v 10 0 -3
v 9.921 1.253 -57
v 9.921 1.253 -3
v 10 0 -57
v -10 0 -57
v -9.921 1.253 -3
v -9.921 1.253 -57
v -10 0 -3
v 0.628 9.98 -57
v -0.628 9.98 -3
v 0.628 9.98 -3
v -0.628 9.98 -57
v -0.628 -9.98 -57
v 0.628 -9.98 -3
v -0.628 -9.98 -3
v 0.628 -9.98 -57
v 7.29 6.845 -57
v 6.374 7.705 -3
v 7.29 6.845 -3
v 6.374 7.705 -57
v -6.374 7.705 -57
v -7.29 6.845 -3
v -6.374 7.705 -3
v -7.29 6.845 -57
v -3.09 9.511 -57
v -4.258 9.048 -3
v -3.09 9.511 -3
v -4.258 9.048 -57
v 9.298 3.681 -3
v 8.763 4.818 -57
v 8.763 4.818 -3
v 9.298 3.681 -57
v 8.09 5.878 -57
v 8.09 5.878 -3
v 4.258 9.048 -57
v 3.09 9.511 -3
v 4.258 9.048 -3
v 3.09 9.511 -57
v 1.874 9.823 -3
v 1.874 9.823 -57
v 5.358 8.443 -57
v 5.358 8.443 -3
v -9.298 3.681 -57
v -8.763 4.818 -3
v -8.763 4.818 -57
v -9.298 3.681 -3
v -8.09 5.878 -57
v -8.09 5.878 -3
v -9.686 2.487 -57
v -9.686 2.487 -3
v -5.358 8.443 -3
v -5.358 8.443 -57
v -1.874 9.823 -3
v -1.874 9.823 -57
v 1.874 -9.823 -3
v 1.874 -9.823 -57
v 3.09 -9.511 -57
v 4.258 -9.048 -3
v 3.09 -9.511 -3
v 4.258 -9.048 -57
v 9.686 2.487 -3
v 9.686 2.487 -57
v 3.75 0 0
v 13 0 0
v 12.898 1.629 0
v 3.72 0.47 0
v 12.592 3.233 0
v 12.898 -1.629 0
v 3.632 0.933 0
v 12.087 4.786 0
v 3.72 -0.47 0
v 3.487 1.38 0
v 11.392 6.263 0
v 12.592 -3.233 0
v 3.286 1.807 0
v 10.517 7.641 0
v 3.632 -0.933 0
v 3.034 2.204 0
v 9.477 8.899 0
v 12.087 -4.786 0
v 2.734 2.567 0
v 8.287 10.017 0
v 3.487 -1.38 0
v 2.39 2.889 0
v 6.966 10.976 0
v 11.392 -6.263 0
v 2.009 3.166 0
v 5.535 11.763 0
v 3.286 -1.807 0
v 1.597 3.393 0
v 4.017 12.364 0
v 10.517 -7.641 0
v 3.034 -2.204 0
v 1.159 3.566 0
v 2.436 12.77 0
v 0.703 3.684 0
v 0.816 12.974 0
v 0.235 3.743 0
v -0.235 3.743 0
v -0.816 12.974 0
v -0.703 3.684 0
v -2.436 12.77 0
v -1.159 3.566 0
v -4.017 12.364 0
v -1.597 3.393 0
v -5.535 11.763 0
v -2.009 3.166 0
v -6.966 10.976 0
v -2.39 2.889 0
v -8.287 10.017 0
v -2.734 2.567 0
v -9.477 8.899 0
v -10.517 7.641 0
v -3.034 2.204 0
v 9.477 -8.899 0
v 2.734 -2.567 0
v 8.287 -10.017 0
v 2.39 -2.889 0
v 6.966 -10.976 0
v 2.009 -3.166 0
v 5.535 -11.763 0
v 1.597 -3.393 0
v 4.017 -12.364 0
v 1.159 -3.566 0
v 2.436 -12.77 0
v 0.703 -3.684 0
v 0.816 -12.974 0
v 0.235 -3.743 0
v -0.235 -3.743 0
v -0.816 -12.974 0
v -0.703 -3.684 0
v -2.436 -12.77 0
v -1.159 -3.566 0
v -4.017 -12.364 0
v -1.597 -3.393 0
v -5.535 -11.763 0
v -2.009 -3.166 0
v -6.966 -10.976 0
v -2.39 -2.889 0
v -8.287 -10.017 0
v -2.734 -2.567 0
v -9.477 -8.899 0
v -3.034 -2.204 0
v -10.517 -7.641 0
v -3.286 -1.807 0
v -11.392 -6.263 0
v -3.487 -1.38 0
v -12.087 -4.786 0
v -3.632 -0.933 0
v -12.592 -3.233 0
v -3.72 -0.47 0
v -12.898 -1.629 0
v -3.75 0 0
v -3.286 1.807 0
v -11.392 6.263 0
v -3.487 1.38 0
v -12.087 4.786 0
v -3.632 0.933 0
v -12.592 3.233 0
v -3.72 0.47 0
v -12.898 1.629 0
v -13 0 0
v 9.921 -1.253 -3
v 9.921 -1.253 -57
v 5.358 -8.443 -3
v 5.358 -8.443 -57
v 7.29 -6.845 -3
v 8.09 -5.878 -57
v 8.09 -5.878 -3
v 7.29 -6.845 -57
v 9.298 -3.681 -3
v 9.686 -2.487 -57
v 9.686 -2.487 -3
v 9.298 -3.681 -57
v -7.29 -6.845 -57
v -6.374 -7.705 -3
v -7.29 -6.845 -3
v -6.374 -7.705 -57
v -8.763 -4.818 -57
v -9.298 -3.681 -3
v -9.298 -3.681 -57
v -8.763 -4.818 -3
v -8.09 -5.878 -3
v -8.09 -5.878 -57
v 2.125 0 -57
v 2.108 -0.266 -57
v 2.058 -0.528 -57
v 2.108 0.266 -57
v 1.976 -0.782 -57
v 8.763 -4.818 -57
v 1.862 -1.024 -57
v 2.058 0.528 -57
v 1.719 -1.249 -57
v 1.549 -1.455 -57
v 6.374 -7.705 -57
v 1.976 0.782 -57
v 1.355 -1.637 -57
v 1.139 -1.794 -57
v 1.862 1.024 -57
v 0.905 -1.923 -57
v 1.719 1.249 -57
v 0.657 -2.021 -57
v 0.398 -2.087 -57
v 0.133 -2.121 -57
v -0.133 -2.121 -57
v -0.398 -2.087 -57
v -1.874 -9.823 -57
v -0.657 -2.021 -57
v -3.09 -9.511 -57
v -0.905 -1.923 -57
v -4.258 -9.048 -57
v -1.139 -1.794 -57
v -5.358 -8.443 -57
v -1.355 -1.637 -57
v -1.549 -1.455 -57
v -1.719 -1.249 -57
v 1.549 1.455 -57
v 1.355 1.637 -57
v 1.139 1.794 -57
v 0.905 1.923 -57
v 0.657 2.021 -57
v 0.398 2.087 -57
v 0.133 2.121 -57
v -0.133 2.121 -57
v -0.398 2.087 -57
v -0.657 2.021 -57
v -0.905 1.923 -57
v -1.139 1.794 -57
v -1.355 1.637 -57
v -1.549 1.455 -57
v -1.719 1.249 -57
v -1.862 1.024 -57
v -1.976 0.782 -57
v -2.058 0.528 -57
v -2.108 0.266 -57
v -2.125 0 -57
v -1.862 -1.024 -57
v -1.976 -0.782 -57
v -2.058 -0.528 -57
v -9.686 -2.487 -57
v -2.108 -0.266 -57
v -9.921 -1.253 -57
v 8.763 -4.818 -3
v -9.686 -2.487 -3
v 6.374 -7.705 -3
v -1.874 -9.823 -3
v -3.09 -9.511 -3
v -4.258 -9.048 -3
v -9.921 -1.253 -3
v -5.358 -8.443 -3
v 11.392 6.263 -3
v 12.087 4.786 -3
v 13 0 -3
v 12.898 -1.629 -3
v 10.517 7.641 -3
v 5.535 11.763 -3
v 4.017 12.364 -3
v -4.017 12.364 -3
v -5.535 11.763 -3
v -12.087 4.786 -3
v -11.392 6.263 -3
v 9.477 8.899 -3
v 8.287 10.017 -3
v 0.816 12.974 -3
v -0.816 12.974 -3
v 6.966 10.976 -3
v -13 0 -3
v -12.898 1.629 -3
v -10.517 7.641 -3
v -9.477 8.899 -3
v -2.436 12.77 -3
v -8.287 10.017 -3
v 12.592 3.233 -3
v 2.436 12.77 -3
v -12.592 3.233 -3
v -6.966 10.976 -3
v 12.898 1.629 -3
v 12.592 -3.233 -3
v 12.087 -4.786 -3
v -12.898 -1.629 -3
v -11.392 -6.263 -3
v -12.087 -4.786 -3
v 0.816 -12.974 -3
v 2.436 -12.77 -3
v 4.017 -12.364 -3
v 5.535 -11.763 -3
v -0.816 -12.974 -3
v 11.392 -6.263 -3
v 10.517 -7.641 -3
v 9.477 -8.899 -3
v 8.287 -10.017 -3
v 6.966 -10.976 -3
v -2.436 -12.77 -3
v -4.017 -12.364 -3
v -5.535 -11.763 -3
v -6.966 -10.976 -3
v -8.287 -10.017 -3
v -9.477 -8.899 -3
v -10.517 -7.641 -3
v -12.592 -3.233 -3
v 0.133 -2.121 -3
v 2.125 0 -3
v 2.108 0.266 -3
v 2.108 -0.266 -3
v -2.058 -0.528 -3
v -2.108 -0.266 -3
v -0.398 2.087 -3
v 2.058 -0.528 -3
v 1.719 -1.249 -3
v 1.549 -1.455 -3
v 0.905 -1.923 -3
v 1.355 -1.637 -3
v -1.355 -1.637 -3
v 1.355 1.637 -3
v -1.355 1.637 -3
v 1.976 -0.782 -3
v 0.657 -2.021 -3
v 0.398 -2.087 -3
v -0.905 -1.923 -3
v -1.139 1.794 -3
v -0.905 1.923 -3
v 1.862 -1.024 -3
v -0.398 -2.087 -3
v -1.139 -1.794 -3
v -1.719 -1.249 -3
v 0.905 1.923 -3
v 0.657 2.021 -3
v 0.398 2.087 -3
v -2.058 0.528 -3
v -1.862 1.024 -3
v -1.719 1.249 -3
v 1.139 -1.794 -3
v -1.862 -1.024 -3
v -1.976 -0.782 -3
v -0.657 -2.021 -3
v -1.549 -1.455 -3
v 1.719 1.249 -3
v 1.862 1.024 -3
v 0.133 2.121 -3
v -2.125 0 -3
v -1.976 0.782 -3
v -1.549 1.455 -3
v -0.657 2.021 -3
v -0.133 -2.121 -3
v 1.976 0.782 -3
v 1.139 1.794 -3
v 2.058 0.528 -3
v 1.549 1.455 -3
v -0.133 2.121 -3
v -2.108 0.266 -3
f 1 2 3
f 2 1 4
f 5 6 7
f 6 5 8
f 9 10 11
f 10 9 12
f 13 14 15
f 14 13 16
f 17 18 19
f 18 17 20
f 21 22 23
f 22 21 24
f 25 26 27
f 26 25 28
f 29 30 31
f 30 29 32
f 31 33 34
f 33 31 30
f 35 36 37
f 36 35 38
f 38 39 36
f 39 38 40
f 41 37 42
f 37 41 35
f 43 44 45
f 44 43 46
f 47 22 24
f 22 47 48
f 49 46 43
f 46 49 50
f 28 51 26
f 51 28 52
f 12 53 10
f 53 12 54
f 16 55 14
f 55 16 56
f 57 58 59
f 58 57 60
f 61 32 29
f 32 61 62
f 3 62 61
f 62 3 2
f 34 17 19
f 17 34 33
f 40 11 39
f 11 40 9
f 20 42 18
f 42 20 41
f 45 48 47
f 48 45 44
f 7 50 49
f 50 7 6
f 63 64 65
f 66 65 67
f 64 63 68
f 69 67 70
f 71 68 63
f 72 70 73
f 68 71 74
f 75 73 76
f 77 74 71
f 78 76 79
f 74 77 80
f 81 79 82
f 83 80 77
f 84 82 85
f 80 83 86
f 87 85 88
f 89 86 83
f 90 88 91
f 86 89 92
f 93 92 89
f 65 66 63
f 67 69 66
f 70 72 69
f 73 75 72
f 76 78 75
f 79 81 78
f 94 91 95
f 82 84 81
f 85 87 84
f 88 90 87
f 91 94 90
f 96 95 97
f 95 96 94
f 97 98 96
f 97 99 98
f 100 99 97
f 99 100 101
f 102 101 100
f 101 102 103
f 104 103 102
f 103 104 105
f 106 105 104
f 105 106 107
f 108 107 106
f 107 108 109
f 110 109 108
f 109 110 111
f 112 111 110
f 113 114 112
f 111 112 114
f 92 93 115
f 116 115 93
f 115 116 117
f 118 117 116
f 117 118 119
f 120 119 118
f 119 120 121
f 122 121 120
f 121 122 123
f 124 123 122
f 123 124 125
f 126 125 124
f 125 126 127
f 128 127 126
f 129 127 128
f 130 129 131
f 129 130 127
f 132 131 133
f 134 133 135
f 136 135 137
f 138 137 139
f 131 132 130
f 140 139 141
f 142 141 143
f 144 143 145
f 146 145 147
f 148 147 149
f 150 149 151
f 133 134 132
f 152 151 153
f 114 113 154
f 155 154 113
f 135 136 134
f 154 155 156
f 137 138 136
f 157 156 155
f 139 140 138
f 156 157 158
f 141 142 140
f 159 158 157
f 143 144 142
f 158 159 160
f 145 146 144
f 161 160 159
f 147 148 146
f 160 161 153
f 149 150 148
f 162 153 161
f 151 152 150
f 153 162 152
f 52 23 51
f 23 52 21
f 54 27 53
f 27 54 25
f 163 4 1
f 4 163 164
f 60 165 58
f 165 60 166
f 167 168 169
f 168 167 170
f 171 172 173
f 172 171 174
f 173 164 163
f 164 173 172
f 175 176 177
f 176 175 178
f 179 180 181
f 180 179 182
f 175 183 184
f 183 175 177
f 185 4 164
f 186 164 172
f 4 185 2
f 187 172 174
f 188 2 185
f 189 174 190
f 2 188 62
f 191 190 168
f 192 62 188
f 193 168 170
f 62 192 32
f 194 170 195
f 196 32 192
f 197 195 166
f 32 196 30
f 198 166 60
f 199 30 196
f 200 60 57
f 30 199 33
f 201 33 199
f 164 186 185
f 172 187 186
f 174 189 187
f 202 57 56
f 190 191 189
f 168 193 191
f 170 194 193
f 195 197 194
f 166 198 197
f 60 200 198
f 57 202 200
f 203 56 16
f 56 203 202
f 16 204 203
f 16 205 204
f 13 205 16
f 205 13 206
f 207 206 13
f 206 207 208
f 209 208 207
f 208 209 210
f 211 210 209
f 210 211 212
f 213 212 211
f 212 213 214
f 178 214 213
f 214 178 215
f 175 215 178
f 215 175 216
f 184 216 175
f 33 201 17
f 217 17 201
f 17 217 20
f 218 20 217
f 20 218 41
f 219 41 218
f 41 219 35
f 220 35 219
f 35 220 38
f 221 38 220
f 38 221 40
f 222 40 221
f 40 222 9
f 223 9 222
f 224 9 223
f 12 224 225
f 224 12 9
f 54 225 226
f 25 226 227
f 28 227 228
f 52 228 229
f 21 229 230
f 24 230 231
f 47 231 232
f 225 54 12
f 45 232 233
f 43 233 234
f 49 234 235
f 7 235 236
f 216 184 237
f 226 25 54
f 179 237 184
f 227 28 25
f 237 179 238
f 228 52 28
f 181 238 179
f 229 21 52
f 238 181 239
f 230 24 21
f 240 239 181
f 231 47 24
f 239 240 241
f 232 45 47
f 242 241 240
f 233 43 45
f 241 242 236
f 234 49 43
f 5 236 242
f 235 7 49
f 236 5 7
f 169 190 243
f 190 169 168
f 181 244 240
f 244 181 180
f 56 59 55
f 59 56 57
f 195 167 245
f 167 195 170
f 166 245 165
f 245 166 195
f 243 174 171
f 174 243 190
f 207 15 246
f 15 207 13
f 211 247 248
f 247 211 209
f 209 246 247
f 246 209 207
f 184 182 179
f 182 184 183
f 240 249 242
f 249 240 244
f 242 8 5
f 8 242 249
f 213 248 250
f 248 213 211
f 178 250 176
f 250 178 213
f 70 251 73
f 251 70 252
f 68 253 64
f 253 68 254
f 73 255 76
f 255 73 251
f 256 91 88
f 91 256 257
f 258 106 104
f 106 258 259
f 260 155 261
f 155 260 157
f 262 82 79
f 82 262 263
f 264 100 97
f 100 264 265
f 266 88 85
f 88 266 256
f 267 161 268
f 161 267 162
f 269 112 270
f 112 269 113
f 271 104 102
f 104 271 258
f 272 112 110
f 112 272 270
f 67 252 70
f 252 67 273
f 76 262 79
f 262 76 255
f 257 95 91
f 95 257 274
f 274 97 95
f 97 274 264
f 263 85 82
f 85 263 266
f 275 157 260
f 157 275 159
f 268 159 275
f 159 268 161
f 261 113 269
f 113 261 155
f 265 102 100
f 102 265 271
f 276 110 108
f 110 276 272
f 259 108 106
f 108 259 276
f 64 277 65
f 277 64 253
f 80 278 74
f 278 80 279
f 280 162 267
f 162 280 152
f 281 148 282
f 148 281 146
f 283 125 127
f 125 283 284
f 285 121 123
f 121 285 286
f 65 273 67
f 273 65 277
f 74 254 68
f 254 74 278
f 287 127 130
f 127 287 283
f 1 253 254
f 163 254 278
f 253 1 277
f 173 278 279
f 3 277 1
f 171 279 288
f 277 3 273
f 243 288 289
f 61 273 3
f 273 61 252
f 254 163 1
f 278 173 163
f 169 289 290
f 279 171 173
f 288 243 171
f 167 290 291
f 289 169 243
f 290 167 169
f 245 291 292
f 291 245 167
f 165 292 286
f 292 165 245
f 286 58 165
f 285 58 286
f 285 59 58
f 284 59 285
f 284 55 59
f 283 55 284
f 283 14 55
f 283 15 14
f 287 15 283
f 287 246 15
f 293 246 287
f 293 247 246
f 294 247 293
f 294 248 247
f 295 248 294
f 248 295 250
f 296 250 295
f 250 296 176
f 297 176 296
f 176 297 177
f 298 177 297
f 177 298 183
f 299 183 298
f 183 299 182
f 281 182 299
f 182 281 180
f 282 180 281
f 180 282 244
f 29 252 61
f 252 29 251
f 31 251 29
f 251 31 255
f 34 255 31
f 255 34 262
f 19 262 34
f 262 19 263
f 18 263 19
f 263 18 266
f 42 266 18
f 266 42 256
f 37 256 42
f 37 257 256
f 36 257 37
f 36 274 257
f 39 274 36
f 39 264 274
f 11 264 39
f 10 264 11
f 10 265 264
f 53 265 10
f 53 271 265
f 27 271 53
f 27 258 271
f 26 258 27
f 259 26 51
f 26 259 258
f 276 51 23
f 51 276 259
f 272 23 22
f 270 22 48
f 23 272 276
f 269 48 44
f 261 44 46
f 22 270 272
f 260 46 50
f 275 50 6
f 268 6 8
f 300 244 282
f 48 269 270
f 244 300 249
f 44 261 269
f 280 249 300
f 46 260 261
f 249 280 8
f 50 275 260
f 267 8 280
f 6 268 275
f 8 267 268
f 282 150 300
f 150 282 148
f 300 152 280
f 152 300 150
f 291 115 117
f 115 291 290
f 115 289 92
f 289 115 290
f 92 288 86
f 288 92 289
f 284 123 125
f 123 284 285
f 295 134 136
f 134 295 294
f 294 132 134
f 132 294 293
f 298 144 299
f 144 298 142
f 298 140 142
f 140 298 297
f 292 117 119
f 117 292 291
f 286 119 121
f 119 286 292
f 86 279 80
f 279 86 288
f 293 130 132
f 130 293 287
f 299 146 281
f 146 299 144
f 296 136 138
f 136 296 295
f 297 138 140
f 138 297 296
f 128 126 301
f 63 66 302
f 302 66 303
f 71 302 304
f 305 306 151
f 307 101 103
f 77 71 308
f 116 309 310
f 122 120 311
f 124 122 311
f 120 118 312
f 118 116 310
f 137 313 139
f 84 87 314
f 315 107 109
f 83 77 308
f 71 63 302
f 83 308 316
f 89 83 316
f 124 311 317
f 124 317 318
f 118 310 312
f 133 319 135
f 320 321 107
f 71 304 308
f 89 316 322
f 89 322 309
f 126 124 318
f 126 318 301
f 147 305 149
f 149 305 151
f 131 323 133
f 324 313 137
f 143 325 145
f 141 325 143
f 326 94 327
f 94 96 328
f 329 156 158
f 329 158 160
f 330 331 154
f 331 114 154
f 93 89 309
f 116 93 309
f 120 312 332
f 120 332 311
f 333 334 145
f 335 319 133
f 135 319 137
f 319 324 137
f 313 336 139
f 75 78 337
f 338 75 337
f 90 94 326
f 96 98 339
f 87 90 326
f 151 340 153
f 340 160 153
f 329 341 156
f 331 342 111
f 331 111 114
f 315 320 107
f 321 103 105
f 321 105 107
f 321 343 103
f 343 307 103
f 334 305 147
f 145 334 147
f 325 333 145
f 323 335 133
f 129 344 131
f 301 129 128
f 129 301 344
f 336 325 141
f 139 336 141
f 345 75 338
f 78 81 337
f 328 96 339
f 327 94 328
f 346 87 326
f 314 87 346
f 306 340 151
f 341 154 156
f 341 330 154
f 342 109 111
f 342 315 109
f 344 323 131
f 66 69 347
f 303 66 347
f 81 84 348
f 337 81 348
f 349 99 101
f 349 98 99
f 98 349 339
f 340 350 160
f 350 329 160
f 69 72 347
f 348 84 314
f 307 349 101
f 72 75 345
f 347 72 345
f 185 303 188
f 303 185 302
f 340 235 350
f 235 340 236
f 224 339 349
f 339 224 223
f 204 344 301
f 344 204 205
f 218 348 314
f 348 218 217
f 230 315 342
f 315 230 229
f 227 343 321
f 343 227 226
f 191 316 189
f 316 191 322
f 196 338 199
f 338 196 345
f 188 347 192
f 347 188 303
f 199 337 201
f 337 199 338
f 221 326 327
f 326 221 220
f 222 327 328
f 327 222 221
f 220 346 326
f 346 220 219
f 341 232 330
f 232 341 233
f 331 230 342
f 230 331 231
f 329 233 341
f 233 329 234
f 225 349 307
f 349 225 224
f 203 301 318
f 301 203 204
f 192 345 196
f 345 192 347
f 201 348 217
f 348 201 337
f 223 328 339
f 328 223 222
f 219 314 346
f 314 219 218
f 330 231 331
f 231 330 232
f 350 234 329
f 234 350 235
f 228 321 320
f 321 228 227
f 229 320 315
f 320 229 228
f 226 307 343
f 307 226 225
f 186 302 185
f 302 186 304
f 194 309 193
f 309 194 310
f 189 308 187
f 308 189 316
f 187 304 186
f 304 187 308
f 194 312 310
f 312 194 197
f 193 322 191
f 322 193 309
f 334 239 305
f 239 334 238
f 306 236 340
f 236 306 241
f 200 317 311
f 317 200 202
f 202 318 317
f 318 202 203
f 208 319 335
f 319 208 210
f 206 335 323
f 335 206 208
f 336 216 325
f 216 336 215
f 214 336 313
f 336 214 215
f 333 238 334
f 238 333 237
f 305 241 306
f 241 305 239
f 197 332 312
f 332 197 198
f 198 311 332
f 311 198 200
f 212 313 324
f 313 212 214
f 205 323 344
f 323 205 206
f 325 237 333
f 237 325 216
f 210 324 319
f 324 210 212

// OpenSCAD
$fn = 50;


difference() {
	union() {
		translate(v = [0, 0, -57.0000000000]) {
			cylinder(h = 57, r = 10.0000000000);
		}
		translate(v = [0, 0, -3.0000000000]) {
			cylinder(h = 3, r = 13.0000000000);
		}
	}
	union() {
		translate(v = [0, 0, 0]) {
			rotate(a = [0, 0, 0]) {
				difference() {
					union() {
						#translate(v = [0, 0, -57.0000000000]) {
							cylinder(h = 57, r = 2.0000000000);
						}
						#translate(v = [0, 0, -3]) {
							cylinder(h = 3, r = 10.0000000000, r1 = 2.1250000000, r2 = 3.7500000000);
						}
						#translate(v = [0, 0, -57.0000000000]) {
							cylinder(h = 57, r = 2.1250000000);
						}
						#translate(v = [0, 0, -57.0000000000]) {
							cylinder(h = 57, r = 2.0000000000);
						}
					}
					union();
				}
			}
		}
	}
}
